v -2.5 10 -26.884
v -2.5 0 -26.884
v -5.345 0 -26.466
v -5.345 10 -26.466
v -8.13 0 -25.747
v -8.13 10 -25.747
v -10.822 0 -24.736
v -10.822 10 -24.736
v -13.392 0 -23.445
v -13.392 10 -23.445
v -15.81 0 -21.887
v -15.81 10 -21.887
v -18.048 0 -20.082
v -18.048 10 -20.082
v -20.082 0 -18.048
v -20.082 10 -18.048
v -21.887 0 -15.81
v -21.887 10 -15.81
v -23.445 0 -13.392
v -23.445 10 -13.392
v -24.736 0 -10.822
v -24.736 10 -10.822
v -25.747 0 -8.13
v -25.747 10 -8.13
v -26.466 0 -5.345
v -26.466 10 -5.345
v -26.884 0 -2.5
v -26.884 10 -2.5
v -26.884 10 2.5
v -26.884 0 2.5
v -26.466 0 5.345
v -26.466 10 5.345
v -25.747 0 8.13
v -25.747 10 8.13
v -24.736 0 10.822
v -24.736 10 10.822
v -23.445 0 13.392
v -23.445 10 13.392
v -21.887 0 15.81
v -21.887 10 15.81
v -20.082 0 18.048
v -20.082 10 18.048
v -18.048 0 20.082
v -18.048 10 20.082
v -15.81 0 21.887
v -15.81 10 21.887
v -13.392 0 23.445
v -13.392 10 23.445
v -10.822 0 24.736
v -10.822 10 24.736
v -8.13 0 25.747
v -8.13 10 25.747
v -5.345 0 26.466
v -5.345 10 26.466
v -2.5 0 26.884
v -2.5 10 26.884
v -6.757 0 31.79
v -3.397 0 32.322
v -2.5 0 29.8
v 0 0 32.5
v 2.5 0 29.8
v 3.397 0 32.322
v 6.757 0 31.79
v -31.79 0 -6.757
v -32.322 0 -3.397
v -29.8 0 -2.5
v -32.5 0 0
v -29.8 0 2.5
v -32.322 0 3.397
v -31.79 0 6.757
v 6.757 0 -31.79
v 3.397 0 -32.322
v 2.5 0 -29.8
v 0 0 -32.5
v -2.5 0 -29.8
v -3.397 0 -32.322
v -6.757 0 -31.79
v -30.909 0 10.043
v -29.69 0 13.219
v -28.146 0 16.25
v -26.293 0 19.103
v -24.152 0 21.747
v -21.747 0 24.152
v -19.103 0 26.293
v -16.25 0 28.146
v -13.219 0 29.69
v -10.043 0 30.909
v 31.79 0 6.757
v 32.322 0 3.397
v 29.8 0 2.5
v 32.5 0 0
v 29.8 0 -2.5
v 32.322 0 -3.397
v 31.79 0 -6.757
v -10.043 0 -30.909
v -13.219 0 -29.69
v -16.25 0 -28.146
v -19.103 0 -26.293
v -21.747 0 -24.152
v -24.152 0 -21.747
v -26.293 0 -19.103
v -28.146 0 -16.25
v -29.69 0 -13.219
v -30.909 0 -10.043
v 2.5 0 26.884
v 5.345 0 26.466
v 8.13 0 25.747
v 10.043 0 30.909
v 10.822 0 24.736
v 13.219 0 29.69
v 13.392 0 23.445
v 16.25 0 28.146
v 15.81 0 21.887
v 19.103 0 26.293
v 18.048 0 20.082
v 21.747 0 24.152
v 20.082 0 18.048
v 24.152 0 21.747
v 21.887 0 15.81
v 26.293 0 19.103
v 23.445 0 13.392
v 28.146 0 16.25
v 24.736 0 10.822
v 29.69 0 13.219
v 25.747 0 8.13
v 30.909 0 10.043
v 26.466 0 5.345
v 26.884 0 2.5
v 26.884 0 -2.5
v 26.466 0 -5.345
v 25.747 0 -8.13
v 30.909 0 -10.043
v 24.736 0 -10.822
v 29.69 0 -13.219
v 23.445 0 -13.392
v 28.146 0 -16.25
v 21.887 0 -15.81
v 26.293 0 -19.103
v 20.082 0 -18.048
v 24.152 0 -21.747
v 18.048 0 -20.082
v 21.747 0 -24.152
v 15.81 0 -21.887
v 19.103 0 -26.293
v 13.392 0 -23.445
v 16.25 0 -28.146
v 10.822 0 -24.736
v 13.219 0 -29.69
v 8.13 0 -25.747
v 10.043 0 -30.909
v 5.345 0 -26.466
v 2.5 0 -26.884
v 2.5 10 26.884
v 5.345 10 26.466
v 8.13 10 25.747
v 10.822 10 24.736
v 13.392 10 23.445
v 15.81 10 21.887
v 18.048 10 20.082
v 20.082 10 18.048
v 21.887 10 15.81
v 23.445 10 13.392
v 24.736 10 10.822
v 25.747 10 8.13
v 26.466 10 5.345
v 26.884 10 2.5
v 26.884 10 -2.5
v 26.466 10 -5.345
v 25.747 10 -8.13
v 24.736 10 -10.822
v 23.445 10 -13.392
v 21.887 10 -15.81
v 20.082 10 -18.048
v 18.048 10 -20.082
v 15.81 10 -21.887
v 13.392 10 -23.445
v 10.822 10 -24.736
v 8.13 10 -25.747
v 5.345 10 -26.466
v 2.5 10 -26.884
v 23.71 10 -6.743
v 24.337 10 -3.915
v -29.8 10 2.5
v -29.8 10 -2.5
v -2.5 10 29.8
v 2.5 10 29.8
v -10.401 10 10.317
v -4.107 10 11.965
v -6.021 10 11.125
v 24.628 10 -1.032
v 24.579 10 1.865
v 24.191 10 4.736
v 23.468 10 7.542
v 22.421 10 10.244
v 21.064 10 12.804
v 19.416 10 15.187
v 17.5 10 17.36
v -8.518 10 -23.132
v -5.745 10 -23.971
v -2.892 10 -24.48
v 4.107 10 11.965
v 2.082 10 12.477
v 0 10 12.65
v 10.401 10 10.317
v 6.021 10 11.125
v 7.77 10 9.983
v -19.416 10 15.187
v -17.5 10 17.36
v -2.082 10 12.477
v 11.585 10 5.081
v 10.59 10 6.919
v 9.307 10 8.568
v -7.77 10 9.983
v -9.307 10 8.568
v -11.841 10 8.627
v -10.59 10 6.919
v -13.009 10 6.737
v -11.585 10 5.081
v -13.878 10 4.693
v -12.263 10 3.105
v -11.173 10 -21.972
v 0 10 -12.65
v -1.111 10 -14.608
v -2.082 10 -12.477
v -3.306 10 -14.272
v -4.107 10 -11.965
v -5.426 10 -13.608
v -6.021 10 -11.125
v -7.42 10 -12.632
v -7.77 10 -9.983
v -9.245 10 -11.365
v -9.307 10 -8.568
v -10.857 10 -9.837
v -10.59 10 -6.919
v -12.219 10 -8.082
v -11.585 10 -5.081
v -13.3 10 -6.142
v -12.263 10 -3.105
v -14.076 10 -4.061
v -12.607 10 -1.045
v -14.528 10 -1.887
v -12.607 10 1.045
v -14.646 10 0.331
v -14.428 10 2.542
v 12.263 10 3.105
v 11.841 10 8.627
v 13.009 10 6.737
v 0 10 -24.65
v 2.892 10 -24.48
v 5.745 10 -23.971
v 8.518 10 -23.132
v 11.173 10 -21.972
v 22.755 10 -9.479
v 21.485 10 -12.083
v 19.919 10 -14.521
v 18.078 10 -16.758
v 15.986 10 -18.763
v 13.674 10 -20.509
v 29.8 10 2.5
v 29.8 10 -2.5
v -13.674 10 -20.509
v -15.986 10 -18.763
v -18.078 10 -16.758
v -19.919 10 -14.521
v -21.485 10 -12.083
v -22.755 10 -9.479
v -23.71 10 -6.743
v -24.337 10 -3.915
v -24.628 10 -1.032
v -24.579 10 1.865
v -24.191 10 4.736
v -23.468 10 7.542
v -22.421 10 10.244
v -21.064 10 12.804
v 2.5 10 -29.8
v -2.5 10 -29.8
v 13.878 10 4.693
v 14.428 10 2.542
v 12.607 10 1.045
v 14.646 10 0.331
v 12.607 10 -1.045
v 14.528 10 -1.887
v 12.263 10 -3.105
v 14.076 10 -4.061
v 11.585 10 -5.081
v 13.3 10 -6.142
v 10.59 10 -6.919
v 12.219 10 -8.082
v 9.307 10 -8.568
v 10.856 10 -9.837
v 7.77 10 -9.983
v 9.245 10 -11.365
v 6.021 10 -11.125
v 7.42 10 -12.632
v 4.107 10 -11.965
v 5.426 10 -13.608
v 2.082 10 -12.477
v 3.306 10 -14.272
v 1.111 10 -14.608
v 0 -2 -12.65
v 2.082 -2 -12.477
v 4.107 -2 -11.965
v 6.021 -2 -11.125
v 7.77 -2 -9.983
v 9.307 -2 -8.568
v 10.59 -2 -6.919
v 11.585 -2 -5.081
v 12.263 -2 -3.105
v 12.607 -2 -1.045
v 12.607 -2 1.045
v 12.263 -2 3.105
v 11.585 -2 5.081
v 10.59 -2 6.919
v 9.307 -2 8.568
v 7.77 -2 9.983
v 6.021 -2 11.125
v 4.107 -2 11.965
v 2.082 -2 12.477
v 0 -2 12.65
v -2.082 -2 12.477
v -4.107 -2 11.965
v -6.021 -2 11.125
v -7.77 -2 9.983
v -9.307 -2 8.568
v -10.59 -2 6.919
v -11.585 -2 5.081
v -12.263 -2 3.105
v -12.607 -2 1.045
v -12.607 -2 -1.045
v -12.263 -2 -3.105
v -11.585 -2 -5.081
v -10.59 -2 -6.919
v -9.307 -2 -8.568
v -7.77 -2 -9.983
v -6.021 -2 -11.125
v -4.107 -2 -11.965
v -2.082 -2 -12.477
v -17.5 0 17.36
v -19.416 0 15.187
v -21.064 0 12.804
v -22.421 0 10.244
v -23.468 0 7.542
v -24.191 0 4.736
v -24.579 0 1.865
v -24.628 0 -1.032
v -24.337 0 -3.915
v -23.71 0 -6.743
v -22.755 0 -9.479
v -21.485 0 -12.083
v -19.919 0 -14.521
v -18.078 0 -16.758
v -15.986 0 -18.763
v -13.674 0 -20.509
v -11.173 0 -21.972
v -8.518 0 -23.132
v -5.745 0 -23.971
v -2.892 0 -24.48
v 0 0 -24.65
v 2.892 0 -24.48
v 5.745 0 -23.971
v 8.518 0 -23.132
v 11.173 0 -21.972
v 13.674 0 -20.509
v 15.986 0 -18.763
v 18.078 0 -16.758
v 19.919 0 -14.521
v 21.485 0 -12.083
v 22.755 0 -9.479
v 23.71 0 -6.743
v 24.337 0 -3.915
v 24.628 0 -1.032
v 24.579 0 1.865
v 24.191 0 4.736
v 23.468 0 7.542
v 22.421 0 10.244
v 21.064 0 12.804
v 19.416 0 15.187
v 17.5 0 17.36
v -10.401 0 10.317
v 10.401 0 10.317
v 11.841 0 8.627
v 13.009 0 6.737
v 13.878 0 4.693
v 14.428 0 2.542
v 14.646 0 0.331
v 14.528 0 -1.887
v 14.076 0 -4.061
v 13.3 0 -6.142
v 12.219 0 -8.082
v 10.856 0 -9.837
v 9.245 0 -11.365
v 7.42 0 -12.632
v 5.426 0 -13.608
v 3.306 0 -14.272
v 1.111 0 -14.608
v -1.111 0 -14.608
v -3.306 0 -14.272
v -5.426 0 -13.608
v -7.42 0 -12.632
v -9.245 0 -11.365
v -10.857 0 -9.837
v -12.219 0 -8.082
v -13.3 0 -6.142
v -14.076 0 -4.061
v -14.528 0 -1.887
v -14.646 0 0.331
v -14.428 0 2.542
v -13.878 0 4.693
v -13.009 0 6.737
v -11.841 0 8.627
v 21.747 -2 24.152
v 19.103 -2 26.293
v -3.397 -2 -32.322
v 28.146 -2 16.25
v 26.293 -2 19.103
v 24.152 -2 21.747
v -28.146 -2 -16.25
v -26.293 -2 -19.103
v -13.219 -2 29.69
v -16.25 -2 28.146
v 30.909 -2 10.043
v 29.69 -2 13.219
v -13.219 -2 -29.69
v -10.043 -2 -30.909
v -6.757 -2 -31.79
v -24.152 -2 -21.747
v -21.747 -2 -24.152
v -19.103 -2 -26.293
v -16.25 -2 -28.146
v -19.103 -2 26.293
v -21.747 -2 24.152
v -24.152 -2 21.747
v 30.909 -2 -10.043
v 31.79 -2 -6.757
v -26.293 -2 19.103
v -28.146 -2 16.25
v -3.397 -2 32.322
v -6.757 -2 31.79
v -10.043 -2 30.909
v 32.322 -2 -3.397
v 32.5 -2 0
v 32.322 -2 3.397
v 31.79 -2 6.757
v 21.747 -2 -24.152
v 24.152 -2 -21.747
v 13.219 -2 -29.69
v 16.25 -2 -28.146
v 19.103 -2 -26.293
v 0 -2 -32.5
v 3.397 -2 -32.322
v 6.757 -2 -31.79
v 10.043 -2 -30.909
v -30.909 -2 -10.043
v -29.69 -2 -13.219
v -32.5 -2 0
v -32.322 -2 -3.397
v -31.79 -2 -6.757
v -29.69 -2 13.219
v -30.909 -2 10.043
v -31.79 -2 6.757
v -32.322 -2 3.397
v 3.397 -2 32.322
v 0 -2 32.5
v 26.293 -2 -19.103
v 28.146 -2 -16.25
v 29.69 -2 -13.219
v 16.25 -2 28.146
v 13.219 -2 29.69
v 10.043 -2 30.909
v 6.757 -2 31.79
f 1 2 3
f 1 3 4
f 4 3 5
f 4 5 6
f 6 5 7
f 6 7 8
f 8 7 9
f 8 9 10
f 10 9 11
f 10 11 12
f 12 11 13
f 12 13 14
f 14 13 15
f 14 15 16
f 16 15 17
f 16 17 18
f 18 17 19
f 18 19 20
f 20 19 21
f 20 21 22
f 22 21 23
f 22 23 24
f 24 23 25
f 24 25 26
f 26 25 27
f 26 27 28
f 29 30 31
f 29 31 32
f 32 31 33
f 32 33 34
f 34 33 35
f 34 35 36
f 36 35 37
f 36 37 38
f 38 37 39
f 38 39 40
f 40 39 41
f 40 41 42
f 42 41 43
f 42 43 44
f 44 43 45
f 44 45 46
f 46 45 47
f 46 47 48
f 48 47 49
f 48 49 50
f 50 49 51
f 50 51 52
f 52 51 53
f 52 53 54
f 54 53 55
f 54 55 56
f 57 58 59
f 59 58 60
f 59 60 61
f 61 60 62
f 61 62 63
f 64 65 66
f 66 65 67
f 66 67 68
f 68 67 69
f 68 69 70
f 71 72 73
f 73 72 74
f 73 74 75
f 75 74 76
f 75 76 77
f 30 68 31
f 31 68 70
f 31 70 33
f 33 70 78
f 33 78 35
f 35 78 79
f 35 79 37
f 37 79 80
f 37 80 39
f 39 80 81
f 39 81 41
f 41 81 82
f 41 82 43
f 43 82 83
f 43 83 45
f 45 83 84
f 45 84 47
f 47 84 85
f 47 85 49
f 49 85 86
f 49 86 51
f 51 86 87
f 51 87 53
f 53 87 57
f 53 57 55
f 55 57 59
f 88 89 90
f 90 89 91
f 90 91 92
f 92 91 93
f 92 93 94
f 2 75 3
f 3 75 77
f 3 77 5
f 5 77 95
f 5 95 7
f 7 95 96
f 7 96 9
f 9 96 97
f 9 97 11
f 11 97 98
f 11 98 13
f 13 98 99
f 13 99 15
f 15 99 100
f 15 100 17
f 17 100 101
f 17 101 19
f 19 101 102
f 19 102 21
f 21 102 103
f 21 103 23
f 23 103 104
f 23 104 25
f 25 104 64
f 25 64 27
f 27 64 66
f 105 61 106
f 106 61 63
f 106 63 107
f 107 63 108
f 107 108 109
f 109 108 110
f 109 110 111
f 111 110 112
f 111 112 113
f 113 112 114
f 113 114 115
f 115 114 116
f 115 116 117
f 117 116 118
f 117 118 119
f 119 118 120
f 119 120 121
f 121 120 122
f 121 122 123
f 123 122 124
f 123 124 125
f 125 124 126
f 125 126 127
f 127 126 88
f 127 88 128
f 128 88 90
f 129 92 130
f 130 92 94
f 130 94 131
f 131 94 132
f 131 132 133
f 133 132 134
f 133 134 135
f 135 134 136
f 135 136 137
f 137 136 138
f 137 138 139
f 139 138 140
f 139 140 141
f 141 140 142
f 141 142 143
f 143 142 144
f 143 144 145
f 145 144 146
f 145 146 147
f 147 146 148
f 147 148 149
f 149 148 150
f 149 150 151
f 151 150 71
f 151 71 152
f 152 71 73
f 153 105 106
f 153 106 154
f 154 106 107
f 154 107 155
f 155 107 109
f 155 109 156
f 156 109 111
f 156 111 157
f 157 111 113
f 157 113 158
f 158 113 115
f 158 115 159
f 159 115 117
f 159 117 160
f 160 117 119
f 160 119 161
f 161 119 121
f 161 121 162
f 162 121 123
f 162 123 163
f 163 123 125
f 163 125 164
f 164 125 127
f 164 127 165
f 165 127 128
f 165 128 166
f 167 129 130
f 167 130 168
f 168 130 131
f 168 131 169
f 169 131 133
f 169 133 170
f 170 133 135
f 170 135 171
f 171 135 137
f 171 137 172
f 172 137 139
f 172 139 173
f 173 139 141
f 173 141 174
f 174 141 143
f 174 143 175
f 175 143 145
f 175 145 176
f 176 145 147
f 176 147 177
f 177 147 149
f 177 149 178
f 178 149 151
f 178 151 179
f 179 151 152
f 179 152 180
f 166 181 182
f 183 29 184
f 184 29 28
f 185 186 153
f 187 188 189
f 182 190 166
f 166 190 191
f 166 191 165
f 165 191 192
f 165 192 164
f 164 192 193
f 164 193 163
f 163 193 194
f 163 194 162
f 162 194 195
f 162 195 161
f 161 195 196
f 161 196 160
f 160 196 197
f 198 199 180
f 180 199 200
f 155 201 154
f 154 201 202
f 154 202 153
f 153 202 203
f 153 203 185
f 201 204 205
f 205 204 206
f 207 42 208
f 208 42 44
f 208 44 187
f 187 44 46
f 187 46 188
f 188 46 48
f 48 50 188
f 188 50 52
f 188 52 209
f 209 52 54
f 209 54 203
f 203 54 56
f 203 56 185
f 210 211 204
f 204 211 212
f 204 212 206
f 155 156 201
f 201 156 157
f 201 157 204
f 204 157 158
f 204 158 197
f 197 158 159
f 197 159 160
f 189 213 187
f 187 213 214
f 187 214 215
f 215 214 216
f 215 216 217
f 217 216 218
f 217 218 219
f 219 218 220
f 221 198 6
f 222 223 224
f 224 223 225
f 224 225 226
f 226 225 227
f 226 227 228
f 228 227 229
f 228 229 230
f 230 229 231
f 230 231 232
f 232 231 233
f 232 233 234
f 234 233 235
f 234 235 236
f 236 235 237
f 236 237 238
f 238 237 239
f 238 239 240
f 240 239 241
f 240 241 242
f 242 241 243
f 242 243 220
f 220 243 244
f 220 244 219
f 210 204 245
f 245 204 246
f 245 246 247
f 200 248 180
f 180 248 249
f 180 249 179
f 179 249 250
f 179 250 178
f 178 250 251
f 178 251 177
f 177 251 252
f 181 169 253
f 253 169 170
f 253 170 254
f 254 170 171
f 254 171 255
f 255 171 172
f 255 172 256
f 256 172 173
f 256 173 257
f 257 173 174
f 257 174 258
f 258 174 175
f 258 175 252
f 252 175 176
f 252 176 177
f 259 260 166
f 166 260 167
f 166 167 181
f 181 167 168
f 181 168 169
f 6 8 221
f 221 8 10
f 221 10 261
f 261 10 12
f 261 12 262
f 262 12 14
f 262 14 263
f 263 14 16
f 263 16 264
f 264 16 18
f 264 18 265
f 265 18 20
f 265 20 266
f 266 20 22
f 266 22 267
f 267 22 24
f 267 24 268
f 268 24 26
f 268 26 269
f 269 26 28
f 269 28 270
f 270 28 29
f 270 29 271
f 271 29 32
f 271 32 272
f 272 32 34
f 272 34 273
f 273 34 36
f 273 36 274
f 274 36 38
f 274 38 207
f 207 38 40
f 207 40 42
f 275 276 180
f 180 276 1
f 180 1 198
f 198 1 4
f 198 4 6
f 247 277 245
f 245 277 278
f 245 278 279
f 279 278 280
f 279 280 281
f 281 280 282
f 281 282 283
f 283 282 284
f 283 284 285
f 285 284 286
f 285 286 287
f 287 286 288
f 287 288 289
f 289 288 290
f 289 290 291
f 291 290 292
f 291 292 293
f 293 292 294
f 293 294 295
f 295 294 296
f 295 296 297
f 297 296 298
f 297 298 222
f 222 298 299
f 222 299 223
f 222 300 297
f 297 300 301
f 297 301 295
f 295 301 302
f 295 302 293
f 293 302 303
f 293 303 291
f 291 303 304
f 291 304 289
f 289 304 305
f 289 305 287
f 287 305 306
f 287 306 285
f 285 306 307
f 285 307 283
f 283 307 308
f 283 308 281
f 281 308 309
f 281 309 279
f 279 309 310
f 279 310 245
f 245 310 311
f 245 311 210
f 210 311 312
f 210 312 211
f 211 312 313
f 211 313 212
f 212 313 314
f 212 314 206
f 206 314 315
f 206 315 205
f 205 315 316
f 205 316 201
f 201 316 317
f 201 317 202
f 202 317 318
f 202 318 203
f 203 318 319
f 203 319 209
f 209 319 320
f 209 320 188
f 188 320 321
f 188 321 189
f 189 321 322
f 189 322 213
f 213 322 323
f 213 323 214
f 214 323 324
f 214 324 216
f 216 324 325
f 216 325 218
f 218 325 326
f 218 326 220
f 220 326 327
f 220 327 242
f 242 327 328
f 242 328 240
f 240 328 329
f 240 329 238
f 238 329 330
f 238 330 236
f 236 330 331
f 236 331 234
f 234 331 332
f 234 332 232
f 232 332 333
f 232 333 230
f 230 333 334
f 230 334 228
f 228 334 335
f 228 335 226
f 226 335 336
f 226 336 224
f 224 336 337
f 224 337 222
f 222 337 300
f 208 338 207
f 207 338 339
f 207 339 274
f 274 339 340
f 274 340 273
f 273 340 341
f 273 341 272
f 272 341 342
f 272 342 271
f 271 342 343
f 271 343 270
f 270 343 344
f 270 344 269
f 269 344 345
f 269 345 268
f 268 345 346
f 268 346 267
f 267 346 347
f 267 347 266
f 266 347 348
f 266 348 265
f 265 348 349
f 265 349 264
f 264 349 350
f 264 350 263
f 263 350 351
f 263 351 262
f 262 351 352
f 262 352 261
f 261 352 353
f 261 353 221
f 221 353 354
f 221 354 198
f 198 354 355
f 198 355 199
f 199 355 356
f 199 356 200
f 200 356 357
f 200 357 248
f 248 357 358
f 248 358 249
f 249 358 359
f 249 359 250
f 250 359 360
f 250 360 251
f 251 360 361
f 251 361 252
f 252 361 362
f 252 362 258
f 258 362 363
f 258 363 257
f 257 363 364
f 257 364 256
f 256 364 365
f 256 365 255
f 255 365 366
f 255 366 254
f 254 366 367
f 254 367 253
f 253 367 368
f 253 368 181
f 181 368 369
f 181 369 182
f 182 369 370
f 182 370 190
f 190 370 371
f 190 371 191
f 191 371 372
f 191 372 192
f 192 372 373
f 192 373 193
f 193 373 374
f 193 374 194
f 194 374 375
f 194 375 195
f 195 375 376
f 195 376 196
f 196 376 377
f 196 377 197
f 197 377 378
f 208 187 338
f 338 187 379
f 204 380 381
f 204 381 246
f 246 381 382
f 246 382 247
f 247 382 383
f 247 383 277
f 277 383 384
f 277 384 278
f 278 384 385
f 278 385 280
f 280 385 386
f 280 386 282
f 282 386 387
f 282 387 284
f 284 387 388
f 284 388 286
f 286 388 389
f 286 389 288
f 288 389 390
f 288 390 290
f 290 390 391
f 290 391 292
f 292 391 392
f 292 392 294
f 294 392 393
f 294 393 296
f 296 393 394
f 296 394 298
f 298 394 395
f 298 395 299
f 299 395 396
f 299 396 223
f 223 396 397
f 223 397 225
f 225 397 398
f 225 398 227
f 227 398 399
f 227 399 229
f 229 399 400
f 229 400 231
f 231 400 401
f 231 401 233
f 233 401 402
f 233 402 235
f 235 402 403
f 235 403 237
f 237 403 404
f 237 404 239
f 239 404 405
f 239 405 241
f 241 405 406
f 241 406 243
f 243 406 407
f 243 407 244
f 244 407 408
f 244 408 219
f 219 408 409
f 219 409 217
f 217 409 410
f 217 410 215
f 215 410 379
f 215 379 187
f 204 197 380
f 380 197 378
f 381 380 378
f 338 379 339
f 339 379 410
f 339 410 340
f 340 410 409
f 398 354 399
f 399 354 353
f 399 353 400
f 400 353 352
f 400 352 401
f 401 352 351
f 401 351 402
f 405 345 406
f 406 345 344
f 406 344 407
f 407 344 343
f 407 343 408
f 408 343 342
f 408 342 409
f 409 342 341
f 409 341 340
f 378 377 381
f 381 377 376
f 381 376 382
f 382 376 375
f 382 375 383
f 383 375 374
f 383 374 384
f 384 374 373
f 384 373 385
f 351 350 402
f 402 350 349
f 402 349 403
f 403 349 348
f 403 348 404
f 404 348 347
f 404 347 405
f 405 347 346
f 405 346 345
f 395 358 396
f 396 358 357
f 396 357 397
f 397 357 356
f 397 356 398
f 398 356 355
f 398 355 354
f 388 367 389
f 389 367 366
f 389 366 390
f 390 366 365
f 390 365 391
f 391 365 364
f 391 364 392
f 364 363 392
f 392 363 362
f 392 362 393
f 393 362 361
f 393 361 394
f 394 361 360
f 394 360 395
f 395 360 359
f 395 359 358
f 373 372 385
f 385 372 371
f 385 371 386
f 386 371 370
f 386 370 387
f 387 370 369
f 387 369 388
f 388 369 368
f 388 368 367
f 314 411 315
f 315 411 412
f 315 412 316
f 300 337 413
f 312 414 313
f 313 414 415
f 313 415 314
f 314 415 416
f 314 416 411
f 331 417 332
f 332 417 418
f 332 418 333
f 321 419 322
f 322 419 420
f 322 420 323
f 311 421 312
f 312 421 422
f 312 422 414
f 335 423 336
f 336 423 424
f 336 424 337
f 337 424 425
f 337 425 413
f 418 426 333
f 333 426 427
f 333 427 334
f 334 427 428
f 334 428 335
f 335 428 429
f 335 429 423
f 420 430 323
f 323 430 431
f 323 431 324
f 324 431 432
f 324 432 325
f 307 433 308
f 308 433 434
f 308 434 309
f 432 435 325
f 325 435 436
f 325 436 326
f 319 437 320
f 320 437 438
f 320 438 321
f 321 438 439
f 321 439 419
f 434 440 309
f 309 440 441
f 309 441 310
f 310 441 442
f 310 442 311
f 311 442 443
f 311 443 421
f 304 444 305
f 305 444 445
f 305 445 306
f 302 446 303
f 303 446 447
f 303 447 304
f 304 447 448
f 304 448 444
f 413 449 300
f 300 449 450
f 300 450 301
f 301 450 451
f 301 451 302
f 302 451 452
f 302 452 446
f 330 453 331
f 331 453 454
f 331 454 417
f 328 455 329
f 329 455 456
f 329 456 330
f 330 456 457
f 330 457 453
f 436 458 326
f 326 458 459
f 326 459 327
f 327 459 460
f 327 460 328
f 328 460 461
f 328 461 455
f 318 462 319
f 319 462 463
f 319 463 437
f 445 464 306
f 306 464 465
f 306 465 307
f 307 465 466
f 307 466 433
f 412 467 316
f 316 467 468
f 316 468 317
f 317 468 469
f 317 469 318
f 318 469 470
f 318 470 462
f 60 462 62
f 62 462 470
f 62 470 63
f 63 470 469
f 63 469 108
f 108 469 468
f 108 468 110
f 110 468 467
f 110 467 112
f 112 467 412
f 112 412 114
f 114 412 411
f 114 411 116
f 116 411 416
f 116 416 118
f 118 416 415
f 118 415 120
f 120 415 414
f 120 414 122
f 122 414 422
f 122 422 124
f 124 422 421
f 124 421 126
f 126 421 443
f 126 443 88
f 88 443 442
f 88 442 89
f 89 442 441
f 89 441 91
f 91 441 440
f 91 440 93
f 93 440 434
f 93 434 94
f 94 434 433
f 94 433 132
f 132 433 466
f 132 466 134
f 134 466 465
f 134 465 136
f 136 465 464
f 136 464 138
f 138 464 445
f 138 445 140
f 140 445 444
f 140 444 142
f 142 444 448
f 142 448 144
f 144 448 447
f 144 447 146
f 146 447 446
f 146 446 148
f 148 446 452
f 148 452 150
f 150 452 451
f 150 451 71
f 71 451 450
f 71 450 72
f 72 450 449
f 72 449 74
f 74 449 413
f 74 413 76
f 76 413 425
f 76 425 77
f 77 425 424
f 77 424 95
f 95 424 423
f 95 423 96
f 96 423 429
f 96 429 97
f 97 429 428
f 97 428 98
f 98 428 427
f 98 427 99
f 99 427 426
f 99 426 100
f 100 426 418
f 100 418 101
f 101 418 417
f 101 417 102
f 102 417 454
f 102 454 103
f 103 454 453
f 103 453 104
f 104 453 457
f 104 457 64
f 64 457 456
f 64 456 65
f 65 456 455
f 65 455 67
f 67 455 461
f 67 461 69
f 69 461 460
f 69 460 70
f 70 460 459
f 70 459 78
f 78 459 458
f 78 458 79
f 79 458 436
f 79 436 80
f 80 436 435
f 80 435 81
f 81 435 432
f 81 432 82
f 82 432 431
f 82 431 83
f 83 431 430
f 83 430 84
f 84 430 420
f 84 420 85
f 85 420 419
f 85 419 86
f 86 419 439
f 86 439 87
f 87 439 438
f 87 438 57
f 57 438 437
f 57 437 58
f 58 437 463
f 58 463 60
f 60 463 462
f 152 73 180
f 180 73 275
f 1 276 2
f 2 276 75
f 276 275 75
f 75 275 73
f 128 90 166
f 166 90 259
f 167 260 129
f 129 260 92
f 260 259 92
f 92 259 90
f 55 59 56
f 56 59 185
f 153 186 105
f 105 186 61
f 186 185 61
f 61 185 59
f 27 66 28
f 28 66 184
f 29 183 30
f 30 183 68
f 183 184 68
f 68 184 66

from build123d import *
from build123d.topology import SkipClean

# Parameters (mm, degrees)
SKETCH1_R           = 27
SKETCH1_R_2         = 12.65
BOSS_EXTRUDE1_DEPTH = 10
BOSS_EXTRUDE2_START = 2
SKETCH2_R           = 32.5
SKETCH2_R_2         = 12.65
BOSS_EXTRUDE2_DEPTH = 2
SKETCH3_W           = 5
SKETCH3_H           = 4.39677325
SKETCH3_W_2         = 4.39677325
SKETCH3_H_2         = 5
BOSS_EXTRUDE3_DEPTH = 10


with BuildPart() as part:
    # Sketch1 → Boss-Extrude1 (new body)
    with BuildSketch(Plane(origin=(0, 0, 0), x_dir=(1, 0, 0), z_dir=(0, 1, 0))):
        with Locations(Location((0, 0, 0), (0, 0, 270))):
            Circle(SKETCH1_R)
        with Locations(Location((0, 0, 0), (0, 0, 270))):
            Circle(SKETCH1_R_2, mode=Mode.SUBTRACT)
        with BuildLine():
            Line((-17.5, -17.360083525), (-10.400608519, -10.317453292))
            ThreePointArc((-10.400608519, -10.317453292), (0, 14.65), (10.400608519, -10.317453292))
            Line((10.400608519, -10.317453292), (17.5, -17.360083525))
            ThreePointArc((17.5, -17.360083525), (0, 24.65), (-17.5, -17.360083525))
        make_face(mode=Mode.SUBTRACT)
    extrude(amount=BOSS_EXTRUDE1_DEPTH)

    # Sketch2 → Boss-Extrude2 (add)
    with SkipClean():  # the faces are left unmerged after this step: merging them gives an invalid solid
        with BuildSketch(Plane.XZ.offset(BOSS_EXTRUDE2_START)):
            with Locations(Location((0, 0, 0), (0, 0, 270))):
                Circle(SKETCH2_R)
            with Locations(Location((0, 0, 0), (0, 0, 270))):
                Circle(SKETCH2_R_2, mode=Mode.SUBTRACT)
        extrude(amount=-BOSS_EXTRUDE2_DEPTH)

    # Sketch3 → Boss-Extrude3 (add)
    with SkipClean():  # the faces are left unmerged after this step: merging them gives an invalid solid
        with BuildSketch(Plane(origin=(0, 0, 0), x_dir=(1, 0, 0), z_dir=(0, 1, 0))):
            with Locations((0, 27.601613375)):
                Rectangle(SKETCH3_W, SKETCH3_H)
            with Locations((27.601613375, 0)):
                Rectangle(SKETCH3_W_2, SKETCH3_H_2)
            with Locations((0, -27.601613375)):
                Rectangle(SKETCH3_W, SKETCH3_H)
            with Locations((-27.601613375, 0)):
                Rectangle(SKETCH3_W_2, SKETCH3_H_2)
        extrude(amount=BOSS_EXTRUDE3_DEPTH)


solid = part.part
